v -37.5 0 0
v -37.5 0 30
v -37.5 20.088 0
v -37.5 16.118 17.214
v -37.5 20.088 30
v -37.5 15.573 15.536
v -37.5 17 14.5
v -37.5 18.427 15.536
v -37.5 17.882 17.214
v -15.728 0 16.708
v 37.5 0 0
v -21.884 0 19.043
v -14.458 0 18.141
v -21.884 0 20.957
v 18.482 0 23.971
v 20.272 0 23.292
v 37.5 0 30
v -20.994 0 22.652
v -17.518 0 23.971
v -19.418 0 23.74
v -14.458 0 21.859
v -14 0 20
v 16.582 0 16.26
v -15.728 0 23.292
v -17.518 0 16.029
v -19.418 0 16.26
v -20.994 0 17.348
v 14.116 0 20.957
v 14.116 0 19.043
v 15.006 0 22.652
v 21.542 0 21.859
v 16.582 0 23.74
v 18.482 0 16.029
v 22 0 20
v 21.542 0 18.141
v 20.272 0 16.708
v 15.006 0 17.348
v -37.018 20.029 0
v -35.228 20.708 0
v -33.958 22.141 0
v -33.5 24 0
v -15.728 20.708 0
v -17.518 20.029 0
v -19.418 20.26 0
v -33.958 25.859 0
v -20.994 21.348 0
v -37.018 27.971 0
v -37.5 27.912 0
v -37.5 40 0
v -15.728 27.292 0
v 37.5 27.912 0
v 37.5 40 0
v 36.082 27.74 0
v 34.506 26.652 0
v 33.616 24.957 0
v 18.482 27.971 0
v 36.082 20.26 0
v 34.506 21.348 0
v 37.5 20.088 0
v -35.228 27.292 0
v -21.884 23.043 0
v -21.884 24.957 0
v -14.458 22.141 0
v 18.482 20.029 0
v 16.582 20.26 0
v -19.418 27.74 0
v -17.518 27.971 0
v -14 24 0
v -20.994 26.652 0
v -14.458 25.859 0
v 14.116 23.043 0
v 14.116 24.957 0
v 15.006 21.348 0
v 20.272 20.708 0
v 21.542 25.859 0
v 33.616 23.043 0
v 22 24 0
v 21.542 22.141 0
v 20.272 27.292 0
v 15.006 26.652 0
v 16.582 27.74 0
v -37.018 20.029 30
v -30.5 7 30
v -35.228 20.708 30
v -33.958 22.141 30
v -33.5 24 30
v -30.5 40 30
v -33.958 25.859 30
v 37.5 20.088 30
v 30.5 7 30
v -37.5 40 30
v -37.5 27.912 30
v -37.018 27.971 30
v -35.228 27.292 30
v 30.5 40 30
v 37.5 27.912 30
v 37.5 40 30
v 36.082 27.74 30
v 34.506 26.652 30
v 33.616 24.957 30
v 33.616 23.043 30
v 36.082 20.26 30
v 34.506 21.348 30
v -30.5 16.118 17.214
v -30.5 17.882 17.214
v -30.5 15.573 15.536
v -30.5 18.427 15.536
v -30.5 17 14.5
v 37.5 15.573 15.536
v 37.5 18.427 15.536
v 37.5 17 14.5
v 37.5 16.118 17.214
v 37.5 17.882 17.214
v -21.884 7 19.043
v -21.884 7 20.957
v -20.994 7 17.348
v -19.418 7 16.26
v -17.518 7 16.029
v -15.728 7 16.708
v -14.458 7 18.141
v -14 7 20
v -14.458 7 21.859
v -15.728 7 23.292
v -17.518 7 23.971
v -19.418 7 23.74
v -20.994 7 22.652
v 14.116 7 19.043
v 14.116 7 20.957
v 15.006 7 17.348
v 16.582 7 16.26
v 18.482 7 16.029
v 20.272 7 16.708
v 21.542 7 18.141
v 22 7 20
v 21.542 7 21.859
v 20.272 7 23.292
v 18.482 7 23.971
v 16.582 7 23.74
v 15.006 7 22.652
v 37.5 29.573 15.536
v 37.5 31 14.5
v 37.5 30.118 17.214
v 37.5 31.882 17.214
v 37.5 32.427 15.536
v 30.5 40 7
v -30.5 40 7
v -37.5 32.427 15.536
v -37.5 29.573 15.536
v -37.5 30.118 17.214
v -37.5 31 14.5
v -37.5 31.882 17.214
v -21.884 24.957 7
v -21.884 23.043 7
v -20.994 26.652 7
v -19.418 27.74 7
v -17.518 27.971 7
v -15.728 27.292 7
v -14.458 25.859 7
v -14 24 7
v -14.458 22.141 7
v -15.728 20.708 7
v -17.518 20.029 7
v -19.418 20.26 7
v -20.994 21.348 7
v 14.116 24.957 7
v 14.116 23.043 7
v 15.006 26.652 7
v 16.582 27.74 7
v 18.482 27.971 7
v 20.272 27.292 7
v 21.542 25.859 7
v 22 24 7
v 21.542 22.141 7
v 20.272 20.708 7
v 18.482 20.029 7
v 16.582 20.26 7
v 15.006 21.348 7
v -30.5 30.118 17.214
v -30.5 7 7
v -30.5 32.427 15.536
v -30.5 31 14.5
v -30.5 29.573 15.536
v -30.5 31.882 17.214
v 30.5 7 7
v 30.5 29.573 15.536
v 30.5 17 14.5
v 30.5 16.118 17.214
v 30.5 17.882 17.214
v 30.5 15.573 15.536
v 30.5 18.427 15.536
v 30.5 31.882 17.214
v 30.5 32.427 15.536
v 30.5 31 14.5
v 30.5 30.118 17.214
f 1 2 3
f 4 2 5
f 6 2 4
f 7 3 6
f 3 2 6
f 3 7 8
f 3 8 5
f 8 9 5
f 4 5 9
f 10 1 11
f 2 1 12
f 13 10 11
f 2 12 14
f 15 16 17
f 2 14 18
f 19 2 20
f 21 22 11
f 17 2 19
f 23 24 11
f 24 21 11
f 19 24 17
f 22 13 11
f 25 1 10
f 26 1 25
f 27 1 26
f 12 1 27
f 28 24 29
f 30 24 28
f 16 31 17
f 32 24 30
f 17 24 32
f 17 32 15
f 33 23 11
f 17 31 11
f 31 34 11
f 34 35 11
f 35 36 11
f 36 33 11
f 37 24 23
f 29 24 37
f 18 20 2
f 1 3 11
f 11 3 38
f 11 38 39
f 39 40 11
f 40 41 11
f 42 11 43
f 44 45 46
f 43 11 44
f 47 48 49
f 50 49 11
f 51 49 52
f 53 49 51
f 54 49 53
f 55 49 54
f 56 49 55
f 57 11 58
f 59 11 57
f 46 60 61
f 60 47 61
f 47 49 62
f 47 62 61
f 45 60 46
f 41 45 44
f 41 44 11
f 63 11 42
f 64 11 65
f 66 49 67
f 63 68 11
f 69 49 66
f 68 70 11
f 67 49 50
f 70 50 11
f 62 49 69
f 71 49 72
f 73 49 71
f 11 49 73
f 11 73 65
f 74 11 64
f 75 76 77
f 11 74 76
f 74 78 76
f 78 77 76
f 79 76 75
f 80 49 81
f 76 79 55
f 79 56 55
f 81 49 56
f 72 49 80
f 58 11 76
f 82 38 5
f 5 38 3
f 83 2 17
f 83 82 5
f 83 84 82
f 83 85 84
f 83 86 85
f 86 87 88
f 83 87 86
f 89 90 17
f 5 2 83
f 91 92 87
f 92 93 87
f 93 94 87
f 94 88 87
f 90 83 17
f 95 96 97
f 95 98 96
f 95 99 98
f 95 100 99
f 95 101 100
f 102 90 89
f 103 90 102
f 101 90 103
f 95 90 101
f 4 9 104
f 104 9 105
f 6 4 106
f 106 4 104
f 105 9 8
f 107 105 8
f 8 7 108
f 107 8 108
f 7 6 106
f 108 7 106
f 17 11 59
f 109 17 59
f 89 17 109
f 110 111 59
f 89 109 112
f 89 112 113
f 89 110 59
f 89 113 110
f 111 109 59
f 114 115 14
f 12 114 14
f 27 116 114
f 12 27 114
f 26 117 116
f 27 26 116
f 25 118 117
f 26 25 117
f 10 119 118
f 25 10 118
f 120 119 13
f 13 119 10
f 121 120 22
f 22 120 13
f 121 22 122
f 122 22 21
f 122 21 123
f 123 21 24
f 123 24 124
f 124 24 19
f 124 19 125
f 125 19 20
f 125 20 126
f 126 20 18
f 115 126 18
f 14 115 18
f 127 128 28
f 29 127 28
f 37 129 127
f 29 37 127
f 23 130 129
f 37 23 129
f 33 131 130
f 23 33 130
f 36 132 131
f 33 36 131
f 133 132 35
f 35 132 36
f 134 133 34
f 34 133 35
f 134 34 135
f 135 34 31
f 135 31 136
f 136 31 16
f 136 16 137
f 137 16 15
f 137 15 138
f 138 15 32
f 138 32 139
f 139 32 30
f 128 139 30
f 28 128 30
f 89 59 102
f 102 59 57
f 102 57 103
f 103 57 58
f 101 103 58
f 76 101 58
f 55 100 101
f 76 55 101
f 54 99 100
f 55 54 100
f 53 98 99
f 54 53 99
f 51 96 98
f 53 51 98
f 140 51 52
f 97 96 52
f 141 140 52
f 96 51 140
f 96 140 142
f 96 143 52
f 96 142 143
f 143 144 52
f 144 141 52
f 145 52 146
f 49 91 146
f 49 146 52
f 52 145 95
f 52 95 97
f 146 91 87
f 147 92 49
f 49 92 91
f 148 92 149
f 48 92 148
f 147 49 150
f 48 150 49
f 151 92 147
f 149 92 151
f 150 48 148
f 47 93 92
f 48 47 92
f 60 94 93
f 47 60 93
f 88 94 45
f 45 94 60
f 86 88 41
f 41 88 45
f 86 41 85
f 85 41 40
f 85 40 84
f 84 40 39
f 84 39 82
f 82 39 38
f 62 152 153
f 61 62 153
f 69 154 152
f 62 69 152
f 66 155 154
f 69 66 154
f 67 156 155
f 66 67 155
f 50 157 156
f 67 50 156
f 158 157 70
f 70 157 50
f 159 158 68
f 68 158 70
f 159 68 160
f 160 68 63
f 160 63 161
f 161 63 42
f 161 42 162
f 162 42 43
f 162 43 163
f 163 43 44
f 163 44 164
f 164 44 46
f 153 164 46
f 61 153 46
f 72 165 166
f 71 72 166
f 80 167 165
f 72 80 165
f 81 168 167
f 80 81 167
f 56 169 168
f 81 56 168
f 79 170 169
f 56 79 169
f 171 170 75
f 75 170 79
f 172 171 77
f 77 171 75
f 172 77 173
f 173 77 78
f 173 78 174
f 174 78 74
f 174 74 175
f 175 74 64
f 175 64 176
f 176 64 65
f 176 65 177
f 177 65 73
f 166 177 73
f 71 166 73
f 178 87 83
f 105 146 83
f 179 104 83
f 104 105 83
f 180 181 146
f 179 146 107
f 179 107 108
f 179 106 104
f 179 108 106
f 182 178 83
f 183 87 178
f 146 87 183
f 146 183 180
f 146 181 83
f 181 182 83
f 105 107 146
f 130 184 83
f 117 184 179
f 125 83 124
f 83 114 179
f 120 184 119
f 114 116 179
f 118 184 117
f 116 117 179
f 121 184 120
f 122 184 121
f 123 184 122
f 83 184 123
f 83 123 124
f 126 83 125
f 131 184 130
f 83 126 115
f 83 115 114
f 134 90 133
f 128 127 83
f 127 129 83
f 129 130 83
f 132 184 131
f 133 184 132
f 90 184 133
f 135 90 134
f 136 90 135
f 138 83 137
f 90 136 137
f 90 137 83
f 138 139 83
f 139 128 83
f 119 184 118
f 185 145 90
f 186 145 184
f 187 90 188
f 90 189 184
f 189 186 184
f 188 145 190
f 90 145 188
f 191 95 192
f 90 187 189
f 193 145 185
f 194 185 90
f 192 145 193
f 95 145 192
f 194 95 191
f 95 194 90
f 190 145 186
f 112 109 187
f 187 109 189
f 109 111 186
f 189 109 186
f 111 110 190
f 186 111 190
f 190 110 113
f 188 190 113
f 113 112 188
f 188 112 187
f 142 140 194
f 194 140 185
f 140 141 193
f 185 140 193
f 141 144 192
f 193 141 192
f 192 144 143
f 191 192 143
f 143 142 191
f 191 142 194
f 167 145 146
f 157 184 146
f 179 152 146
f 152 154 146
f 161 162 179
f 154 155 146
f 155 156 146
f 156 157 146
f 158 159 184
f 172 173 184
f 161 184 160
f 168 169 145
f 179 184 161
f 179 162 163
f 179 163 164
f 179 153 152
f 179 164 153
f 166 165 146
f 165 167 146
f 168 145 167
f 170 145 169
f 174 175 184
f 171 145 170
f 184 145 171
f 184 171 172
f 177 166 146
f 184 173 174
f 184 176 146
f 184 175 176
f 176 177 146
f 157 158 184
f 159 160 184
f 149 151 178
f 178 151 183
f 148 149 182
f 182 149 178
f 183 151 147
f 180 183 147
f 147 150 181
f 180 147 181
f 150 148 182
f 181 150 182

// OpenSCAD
// file: includes/includes/jonaskuehling-default.scad
module teardrop (r=4.5,h=20,alpha=45,teardropcorner=0,fulldrop=false){		// tear drop hole for top-centering
											// use teardropcorner=1 for bottom horizontal corners
	render()
	translate([-h/2,0,0])
		rotate([-270,0+(teardropcorner*180),90])
			difference(){
				linear_extrude(height=h){
					circle(r, $fn=24);
					polygon(points=[[0,0],[r*cos(alpha),r*sin(alpha)],[0,r/sin(alpha)],[-r*cos(alpha),r*sin(alpha)]], paths=[[0,1,2,3]]);
				}
				if(fulldrop==false) 
					translate([0,(r/sin(alpha))/2+r,h/2]) cube([2*r+2,r/sin(alpha),h+2],center=true);
			}
}

//teardrop(4.5,22,fulldrop=true);



module teardropcentering (r=4.5,h=20,alpha=45){				// tear drop hole for top-centering
	centering_offset_factor = 1.1;
	render()
	translate([-h/2,0,0])
		rotate([-270,0,90])
			difference(){
				linear_extrude(height=h){
					circle(r, $fn=24);
					polygon(points=[[0,0],[r*cos(alpha),r*sin(alpha)],[0,r/sin(alpha)],[-r*cos(alpha),r*sin(alpha)]], paths=[[0,1,2,3]]);
				}
				translate([0,(r/sin(alpha))/2+r*centering_offset_factor,h/2]) cube([2*r+2,r/sin(alpha),h+2],center=true);
			}
}

//teardropcentering();



module teardropcentering_half (r=4.5,h=20, bottom=0,alpha=45){				// tear drop hole for top-centering
																// upper half (bottom=0) or bottom half (bottom=1)
	centering_offset_factor = 1.2;
	render()
	translate([-h/2,0,0])
		rotate([-270,0,90])
			difference(){
				linear_extrude(height=h){
					circle(r, $fn=24);
					polygon(points=[[0,0],[r*cos(alpha),r*sin(alpha)],[0,r/sin(alpha)],[-r*cos(alpha),r*sin(alpha)]], paths=[[0,1,2,3]]);
				}
				translate([0,(r/sin(alpha))/2+r*centering_offset_factor,h/2]) cube([2*r+2,r/sin(alpha),h+2],center=true);
				translate([0,-(r*centering_offset_factor)/2-0.5+bottom*(r*centering_offset_factor+1),h/2]) cube([2*r+2,r*centering_offset_factor+1,h+2],center=true);
			}
}

//teardropcentering_half(bottom=0);


module polyhole(d,h){
	n = max(round(2 * d),3);
	cylinder(h = h, r = (d / 2) / cos (180 / n), $fn = n, center=true);
}



module roundcorner(radius,edge_length){
	render()
	translate([0,0,-1])
		difference(){
			translate([-1,-1,0]) cube(size = [radius+1,radius+1,edge_length+2], center = false);
			translate(v = [radius,radius,-1]) cylinder(h = edge_length+4, r=radius, center=false);
		}
}

//roundcorner(5,5);



module roundcorner_tear(radius,edge_length){
	render()
	difference(){
		translate([-1,-1,-1]) cube(size = [edge_length+2, radius+1, radius+1], center = false);
		translate([(edge_length+4)/2-2, radius, radius])
			teardrop(radius, edge_length+4,teardropcorner=1);
	}
}

//roundcorner_tear(8,20);



module nut_trap(nut_wrench_size,trap_height,vertical=true, clearance=0.2){		// M3 wrench size = 5.5
	cornerdiameter =  (((nut_wrench_size)/2)+clearance) / cos(180/6);
	rotate([0,vertical*90,0])
		cylinder(h = trap_height, r = cornerdiameter, center=true, $fn = 6);
}



module nut_slot(nut_wrench_size,nut_height, nut_elevation,vertical=false, clearance=0.2){		// M3 wrench size = 5.5
	cornerdiameter =  (((nut_wrench_size)/2)+clearance) / cos(180/6);
	slot_height = nut_height+2*clearance;
	slot_width = nut_wrench_size+2*clearance;
	rotate([0,vertical*270,0]){
		cylinder(h = slot_height, r = cornerdiameter, center=true, $fn = 6);
		translate([0,-slot_width/2,-slot_height/2]) cube([nut_elevation+1,slot_width,slot_height]);
	}
}

//nut_slot(5.5,3,4,1);



module barbell (x1,x2,r1,r2,r3,r4) 
{
	x3=triangulate (x1,x2,r1+r3,r2+r3);
	x4=triangulate (x2,x1,r2+r4,r1+r4);
	render()
	difference ()
	{
		union()
		{
			translate(x1)
			circle (r=r1);
			translate(x2)
			circle(r=r2);
			polygon (points=[x1,x3,x2,x4]);
		}
		
		translate(x3)
		circle(r=r3,$fa=5);
		translate(x4)
		circle(r=r4,$fa=5);
	}
}

function triangulate (point1, point2, length1, length2) = 
point1 + 
length1*rotated(
atan2(point2[1]-point1[1],point2[0]-point1[0])+
angle(distance(point1,point2),length1,length2));

function distance(point1,point2)=
sqrt((point1[0]-point2[0])*(point1[0]-point2[0])+
(point1[1]-point2[1])*(point1[1]-point2[1]));

function angle(a,b,c) = acos((a*a+b*b-c*c)/(2*a*b)); 

function rotated(a)=[cos(a),sin(a),0];
// file: includes/lm8uu-holder-slim_double-vertical.scad
// LM8UU holder slim
// *********************************************
// Jonas Kühling
// http://www.jonaskuehling.de
// http://www.thingiverse.com/jonaskuehling
// *********************************************
// derived from:
// http://www.thingiverse.com/thing:14942

use <includes/jonaskuehling-default.scad>

// LM8UU/rod dimensions
LM8UU_dia = 15.4;
LM8UU_length = 24;
rod_dia = 8;

//screw/nut dimensions (M3) - hexagon socket head cap screw ISO 4762, hexagon nut ISO 4032
screw_thread_dia_iso = 3;
screw_head_dia_iso = 5.5;
nut_wrench_size_iso = 5.5;


// screw/nut dimensions for use (plus clearance for fitting purpose)
clearance_dia = 0.5;
screw_thread_dia = screw_thread_dia_iso + clearance_dia;
screw_head_dia = screw_head_dia_iso + clearance_dia;
nut_wrench_size = nut_wrench_size_iso + clearance_dia;
nut_dia_perimeter = (nut_wrench_size/cos(30));
nut_dia = nut_dia_perimeter;
nut_surround_thickness = 2;

// main body dimensions
body_wall_thickness = 2;
body_width = LM8UU_dia + (2*body_wall_thickness);
body_height = body_width;
body_length = 60;
gap_width = rod_dia + 2;
screw_bushing_space = 1;
screw_elevation = LM8UU_dia + body_wall_thickness + (screw_thread_dia/2) +screw_bushing_space;

overhang_angle = 60;
r = nut_dia_perimeter/2+nut_surround_thickness;
extra_height_varticalprint = r*sin(90-overhang_angle);

// TEST - uncomment to render in openscad:
//lm8uu_holder_slim_double_vertical();		



// main body
module lm8uu_holder_slim_double_vertical()
{
	// rotate vertical and center bearing around z-axis
	translate([0,-(LM8UU_dia/2+body_wall_thickness),body_length/2])
	rotate([-90,0,0])
	difference()
	{
		union()
		{	
			// body
			translate([-body_width/2,-body_length/2,body_height/2])
				cube([body_width,body_length,(LM8UU_dia/2)+screw_bushing_space+(screw_thread_dia/2)+extra_height_varticalprint]);
			translate([0,0,(LM8UU_dia/2)+body_wall_thickness])		
				rotate([90,0,0])
					cylinder(r=(LM8UU_dia/2)+body_wall_thickness, h=body_length, center=true);
	
			// gap support
			translate([-(gap_width/2)-body_wall_thickness,-(body_length/2),body_height/2])
				cube([body_wall_thickness,LM8UU_length,(LM8UU_dia/2)+screw_bushing_space+(screw_thread_dia/2)]);
			translate([gap_width/2,-(body_length/2),body_height/2])
				cube([body_wall_thickness,LM8UU_length,(LM8UU_dia/2)+screw_bushing_space+(screw_thread_dia/2)]);
	
			for(i=[-(body_length/2-LM8UU_length/2),(body_length/2-LM8UU_length/2)])
			{
				// nut trap surround
				translate([gap_width/2,i,screw_elevation])
					rotate([0,90,0])
						cylinder(r=(((nut_wrench_size+nut_surround_thickness*2)/cos(30))/2), h=(body_width-gap_width)/2, $fn=20);
	
				// Screw hole surround
				translate([-gap_width/2,i,screw_elevation])
					rotate([0,-90,0])
						cylinder(r=(screw_head_dia/2)+nut_surround_thickness, h=(body_width-gap_width)/2, $fn=20);
			}
		}
	
		// bushing hole
		translate([0,0,LM8UU_dia/2+2])
			rotate([90,0,0])
				polyhole(d=LM8UU_dia, h=body_length+1, center=true);
	
		// top gap
		translate([-(gap_width/2),-(body_length/2)-1,body_height/2])
			cube([gap_width,body_length+2,(LM8UU_dia/2)+screw_bushing_space+(screw_thread_dia/2)+(nut_dia/2)+nut_surround_thickness+1]);
	
		for(i=[-(body_length/2-LM8UU_length/2),(body_length/2-LM8UU_length/2)])
		{
			// screw hole (one all the way through)
			translate([0,i,screw_elevation])
				rotate([0,90,0])
					polyhole(d=screw_thread_dia, h=body_width+3, center=true);
		
			// nut trap
			translate([gap_width/2+body_wall_thickness,i,screw_elevation])
				rotate([0,90,0])
					cylinder(r=nut_dia/2, h=body_width/2-gap_width/2-body_wall_thickness+1,$fn=6);
		
			// screw head hole
			translate([-(gap_width)/2-body_wall_thickness,i,screw_elevation])
				rotate([0,-90,0])
					cylinder(r=screw_head_dia/2, h=body_width/2-gap_width/2-body_wall_thickness+1,$fn=20);

		}	
	}
}

/*
// Based on nophead research
module polyhole(d,h,center=false) {
    n = max(round(2 * d),3);
    rotate([0,0,180])
        cylinder(h = h, r = (d / 2) / cos (180 / n), center=center, $fn = n);
}
*/
// file: configuration.scad
// Harmonic drive main parameters
press_angle = 40;
flex_teeth = 50;
teeth_diff = 2;

tol = 0.25; // generic tolerance used in some places
lh = 0.3; // layer height needed in a few places

// Main geometry
bearing_r = 22/2;
bearing_h = 7;
washer_h = 1;
bolthead_h = 4;
stepper_shaft_h = 20;
circ_drive_bearing_indent = 1;
flex_bearing_indent = 1;
drive_bearing_r = 13/2;
drive_bearing_h = 7;

// Flexspline dimensions
flex_inner_r = 25.4;
flex_h = 36;
flex_bottom_h = 2;
flex_bolthole_r = 6;
flex_wt = 0.81;
flex_lip = 1;
pitch = 197;
helix_twist = 5;

// Circspline dimensions
circ_h = 20;
circ_outer_r = 34;
circ_inner_r = 30;
circ_bottom_h = 4;
// Negative clearance cuts a bit from the top of the teeth
circ_tooth_clearance = -0.5;

// Wave driver dimensions
wave_radius = 52.75/2;
driver_h = 12;
driver_w = 10;
drive_bearing_spacing_r = wave_radius - drive_bearing_r;

// The total height of the drive unit, excluding the motor and flexspline base.
assy_h = 50;
stepper_shaft_l = 20;

tooth_overlap = (flex_h + circ_h) - assy_h;

// Position of the middle of the tooth overlap section on the stepper shaft.
stepper_shaft_mid_rot = circ_h - tooth_overlap/2;

echo(str("Tooth overlap: ", tooth_overlap));
echo(str("Drive midpoint on stepper shaft: ", stepper_shaft_mid_rot));

red_r = teeth_diff/flex_teeth;
echo(str("Reduction ratio: 1/", flex_teeth/teeth_diff, " (", red_r, ")"));
echo(str("With 200x16 motor, arc minutes per microstep: ", 360*60/(200*16)*red_r));
echo(str("Linear resolution (mm) for 100 mm arm: ", sin(360/(200*16)*red_r) * 100));
echo(str("Torque (N) at 100 mm for 40 Ncm motor: ", 4/red_r));
echo(str("Linear speed equivalent to standard Prusa's 300 mm/s at 100 mm: ",
         300*80 * sin(360/(200*16)*red_r) * 100));

// Circspline mount dimensions
circ_mount_r = circ_outer_r + 6;
circ_mount_h = 8;
circ_mount_1 = 45;
circ_mount_2 = 135;
circ_mount_3 = 225;

// Master arm height setting
main_arm1_height = 12;
main_arm2_height = 12;

// Arm 1st segment dimensions
arm_flex_base_bottom_h = 3;
arm_flex_base_h = 8;
arm_joint1_base_h = main_arm1_height;
arm_joint1_base_r = 15;
arm_joint1_bearing_indent = 7;
arm_large_bolthole_r=6;
arm_w = 30;
arm1_h = main_arm1_height;

// default length
length = 100;

// Truss generation parameters. The element width must be smaller than
// thickness to avoid the top becoming unprintable (triangle outlines
// over thin air)
truss_thickness = 3.5;
truss_width_coeff = 0.75;
truss_radius = 0.1;
truss_arm1 = 1.07; // Extra coefficient for arm1

// Arm 2nd segment dimensions
arm2_h = main_arm2_height;
arm_separation = arm_joint1_base_h - arm_joint1_bearing_indent 
  + bearing_h + washer_h * 2;
arm_bolthole_r=4;
arm_joint2_base_h = main_arm2_height;
arm_joint2_base_r = 15;
arm_joint3_hollow_r = 10;
arm_joint31_base_h = main_arm2_height;
arm_joint31_base_r = 15;
arm_joint31_bearing_r = 13/2;
arm_joint31_bearing_h = 5;
arm_joint31_bearing_clearance = 2;
arm_joint32_base_h = main_arm2_height;
arm_joint32_base_r = 15;
arm_joint32_tube_h_clearance = 1;
arm_joint32_tube_wt = 2;
arm_joint32_tube_groove_depth = 1;
arm_joint31_bearing_spacing = arm_joint3_hollow_r + arm_joint32_tube_wt 
  + arm_joint31_bearing_r;

echo(str("Arm final stage vertical separation: ", arm_separation));
echo(str("Arm final stage total height: ", arm_separation + 2 * arm2_h));

// Default arm lengths
arm1_length = 100;
arm2_length = 150;
arm_spacing = 75;
arm_base_maxrot = 90 - asin((circ_outer_r + arm_w/2) / arm_spacing);
arm_joint_maxrot = 150; // hand-tuned
echo(str("Arm base minimum rotation to clear other base: ", arm_base_maxrot));

// Z carriage dimensions
carr_floor = 1; // Carriage floor thickness.
carr_wt = 3; // Carriage wall thickness.
carr_truss_width = arm_spacing + bearing_r * 2 + 4; // 120;
carr_truss_depth = 15;
drive_h = assy_h + bearing_h + washer_h 
  + arm_flex_base_bottom_h; // Total length needed by the drive unit.
carr_truss_length = circ_outer_r + 1 + carr_wt + bearing_r + 2;
carr_rod_offset = -45;
carr_drive_offset = -40;
carr_top_support_thickness = 3;
carr_top_support_width = 14;
carr_top_support_length = 70;

// Z end dimensions
z_end_bottom_thickness = 7;
z_end_bottom_width = arm_spacing + 20;
z_end_bottom_length = 40;
z_end_top_length = 50;
z_end_bottom_height = 30;
z_end_rod_offset = 24; // rod center from vertical plate
// file: common.scad
include <configuration.scad>;
use <includes/parametric_involute_gear_v5.0.scad>;
use <includes/SolidReplacementTruss.scad>;
include <includes/lm8uu-holder-slim_double-vertical.scad>;

// Generic spline gear with a herringbone section
module spline_gear(number_of_teeth, circular_pitch, pressure_angle,
                   height, helix_height, twist, backlash, clearance) {
  gear(number_of_teeth=number_of_teeth,
	     circular_pitch=circular_pitch,
	     pressure_angle=pressure_angle,
	     clearance = clearance,
	     gear_thickness = height - helix_height,
   	     rim_thickness = height - helix_height,
	     rim_width = 5,
	     hub_thickness = height - helix_height,
	     hub_diameter=0,
         bore_diameter=0,
	     circles=0,
         backlash=backlash,
	     twist=0);
  translate([0, 0, height - helix_height])
    gear(number_of_teeth=number_of_teeth,
	     circular_pitch=circular_pitch,
	     pressure_angle=pressure_angle,
	     clearance = clearance,
	     gear_thickness = helix_height/2,
   	     rim_thickness = helix_height/2,
	     rim_width = 5,
	     hub_thickness = helix_height/2,
	     hub_diameter=0,
         bore_diameter=0,
	     circles=0,
         backlash=backlash,
	     twist=twist);
  rotate([0, 0, -twist])
  translate([0, 0, height - helix_height/2])
    gear(number_of_teeth=number_of_teeth,
	     circular_pitch=circular_pitch,
	     pressure_angle=pressure_angle,
	     clearance = clearance,
	     gear_thickness = helix_height/2,
   	     rim_thickness = helix_height/2,
	     rim_width = 5,
	     hub_thickness = helix_height/2,
	     hub_diameter=0,
         bore_diameter=0,
	     circles=0,
         backlash=backlash,
	     twist=-twist);
}

// Simplified module for creating flexsplines (with helix section)
module flexspline_helix_gear(height, backlash, clearance) {
  spline_gear(number_of_teeth=flex_teeth,
	     circular_pitch=pitch,
	     pressure_angle=press_angle,
	     height=height,
         helix_height=tooth_overlap,
         backlash=backlash,
         clearance = clearance,
	     twist=-helix_twist);

}

// Simplified module for creating flexsplines (without helix section)
module flexspline_gear(height, backlash, clearance) {
  gear(number_of_teeth=flex_teeth,
	     circular_pitch=pitch,
	     pressure_angle=press_angle,
	     clearance = clearance,
	     gear_thickness = height,
   	     rim_thickness = height,
	     rim_width = 5,
	     hub_thickness = height,
	     hub_diameter=0,
         bore_diameter=0,
	     circles=0,
         backlash=backlash,
	     twist=0);
}

// Variation of the truss_platform, does not try to make the edges
// vertical but instead leaves them slanted.
module my_truss_platform(length, width, height, thickness,
			 element_width, radius) 
{ 
  segments = 2*floor(width/height)+1; 
  seg_width = width/(segments+1);
    
  if (segments > 0)
    for(i = [1 : segments])
      {
	translate([0, (seg_width)*(i-1)+2*seg_width*(1+pow(-1,i))/2, 
		   (height)*(1+pow(-1,i))/2])
	  {
	    rotate([180*(1+pow(-1, i))/2, 0, 0])
	      isoc_truss(length, seg_width*2, height, thickness, 
			 element_width, radius);
	  }
      }
}

module z_end_bottom_clamp_bolts() {
  translate([0, -7, 0]) rotate([0, 90, 0]) cylinder(r=1.5, h=20);
  translate([0, 7, 0]) rotate([0, 90, 0]) cylinder(r=1.5, h=20);  
}
// main file
include <common.scad>;

module z_end_bottom() {
  difference() {
    union() {
      translate([-arm_spacing/2, 0, 0])
        cube([arm_spacing, z_end_bottom_length, z_end_bottom_height]);
    }
    translate([-arm_spacing/2 + z_end_bottom_thickness, 
               z_end_bottom_thickness, z_end_bottom_thickness])
      cube([arm_spacing - z_end_bottom_thickness * 2, z_end_bottom_length, 
	    z_end_bottom_height]);
    translate([arm_spacing/2, z_end_rod_offset, 0])
      cylinder(r=4, h=50);
    translate([-arm_spacing/2, z_end_rod_offset, 0])
      cylinder(r=4, h=50);
    translate([arm_spacing/2 - 10, z_end_rod_offset, 16])
      z_end_bottom_clamp_bolts();
    mirror([1, 0, 0])
      translate([arm_spacing/2 - 10, z_end_rod_offset, 16])
      z_end_bottom_clamp_bolts();
    translate([18, 24, 0]) cylinder(r=4, h=20);
    translate([-18, 24, 0]) cylinder(r=4, h=20);
    translate([0, 10, -4]) rotate([90, 0, 0]) {
      translate([18, 24, 0]) cylinder(r=4, h=20);
      translate([-18, 24, 0]) cylinder(r=4, h=20);
    }
  }
}

z_end_bottom();
